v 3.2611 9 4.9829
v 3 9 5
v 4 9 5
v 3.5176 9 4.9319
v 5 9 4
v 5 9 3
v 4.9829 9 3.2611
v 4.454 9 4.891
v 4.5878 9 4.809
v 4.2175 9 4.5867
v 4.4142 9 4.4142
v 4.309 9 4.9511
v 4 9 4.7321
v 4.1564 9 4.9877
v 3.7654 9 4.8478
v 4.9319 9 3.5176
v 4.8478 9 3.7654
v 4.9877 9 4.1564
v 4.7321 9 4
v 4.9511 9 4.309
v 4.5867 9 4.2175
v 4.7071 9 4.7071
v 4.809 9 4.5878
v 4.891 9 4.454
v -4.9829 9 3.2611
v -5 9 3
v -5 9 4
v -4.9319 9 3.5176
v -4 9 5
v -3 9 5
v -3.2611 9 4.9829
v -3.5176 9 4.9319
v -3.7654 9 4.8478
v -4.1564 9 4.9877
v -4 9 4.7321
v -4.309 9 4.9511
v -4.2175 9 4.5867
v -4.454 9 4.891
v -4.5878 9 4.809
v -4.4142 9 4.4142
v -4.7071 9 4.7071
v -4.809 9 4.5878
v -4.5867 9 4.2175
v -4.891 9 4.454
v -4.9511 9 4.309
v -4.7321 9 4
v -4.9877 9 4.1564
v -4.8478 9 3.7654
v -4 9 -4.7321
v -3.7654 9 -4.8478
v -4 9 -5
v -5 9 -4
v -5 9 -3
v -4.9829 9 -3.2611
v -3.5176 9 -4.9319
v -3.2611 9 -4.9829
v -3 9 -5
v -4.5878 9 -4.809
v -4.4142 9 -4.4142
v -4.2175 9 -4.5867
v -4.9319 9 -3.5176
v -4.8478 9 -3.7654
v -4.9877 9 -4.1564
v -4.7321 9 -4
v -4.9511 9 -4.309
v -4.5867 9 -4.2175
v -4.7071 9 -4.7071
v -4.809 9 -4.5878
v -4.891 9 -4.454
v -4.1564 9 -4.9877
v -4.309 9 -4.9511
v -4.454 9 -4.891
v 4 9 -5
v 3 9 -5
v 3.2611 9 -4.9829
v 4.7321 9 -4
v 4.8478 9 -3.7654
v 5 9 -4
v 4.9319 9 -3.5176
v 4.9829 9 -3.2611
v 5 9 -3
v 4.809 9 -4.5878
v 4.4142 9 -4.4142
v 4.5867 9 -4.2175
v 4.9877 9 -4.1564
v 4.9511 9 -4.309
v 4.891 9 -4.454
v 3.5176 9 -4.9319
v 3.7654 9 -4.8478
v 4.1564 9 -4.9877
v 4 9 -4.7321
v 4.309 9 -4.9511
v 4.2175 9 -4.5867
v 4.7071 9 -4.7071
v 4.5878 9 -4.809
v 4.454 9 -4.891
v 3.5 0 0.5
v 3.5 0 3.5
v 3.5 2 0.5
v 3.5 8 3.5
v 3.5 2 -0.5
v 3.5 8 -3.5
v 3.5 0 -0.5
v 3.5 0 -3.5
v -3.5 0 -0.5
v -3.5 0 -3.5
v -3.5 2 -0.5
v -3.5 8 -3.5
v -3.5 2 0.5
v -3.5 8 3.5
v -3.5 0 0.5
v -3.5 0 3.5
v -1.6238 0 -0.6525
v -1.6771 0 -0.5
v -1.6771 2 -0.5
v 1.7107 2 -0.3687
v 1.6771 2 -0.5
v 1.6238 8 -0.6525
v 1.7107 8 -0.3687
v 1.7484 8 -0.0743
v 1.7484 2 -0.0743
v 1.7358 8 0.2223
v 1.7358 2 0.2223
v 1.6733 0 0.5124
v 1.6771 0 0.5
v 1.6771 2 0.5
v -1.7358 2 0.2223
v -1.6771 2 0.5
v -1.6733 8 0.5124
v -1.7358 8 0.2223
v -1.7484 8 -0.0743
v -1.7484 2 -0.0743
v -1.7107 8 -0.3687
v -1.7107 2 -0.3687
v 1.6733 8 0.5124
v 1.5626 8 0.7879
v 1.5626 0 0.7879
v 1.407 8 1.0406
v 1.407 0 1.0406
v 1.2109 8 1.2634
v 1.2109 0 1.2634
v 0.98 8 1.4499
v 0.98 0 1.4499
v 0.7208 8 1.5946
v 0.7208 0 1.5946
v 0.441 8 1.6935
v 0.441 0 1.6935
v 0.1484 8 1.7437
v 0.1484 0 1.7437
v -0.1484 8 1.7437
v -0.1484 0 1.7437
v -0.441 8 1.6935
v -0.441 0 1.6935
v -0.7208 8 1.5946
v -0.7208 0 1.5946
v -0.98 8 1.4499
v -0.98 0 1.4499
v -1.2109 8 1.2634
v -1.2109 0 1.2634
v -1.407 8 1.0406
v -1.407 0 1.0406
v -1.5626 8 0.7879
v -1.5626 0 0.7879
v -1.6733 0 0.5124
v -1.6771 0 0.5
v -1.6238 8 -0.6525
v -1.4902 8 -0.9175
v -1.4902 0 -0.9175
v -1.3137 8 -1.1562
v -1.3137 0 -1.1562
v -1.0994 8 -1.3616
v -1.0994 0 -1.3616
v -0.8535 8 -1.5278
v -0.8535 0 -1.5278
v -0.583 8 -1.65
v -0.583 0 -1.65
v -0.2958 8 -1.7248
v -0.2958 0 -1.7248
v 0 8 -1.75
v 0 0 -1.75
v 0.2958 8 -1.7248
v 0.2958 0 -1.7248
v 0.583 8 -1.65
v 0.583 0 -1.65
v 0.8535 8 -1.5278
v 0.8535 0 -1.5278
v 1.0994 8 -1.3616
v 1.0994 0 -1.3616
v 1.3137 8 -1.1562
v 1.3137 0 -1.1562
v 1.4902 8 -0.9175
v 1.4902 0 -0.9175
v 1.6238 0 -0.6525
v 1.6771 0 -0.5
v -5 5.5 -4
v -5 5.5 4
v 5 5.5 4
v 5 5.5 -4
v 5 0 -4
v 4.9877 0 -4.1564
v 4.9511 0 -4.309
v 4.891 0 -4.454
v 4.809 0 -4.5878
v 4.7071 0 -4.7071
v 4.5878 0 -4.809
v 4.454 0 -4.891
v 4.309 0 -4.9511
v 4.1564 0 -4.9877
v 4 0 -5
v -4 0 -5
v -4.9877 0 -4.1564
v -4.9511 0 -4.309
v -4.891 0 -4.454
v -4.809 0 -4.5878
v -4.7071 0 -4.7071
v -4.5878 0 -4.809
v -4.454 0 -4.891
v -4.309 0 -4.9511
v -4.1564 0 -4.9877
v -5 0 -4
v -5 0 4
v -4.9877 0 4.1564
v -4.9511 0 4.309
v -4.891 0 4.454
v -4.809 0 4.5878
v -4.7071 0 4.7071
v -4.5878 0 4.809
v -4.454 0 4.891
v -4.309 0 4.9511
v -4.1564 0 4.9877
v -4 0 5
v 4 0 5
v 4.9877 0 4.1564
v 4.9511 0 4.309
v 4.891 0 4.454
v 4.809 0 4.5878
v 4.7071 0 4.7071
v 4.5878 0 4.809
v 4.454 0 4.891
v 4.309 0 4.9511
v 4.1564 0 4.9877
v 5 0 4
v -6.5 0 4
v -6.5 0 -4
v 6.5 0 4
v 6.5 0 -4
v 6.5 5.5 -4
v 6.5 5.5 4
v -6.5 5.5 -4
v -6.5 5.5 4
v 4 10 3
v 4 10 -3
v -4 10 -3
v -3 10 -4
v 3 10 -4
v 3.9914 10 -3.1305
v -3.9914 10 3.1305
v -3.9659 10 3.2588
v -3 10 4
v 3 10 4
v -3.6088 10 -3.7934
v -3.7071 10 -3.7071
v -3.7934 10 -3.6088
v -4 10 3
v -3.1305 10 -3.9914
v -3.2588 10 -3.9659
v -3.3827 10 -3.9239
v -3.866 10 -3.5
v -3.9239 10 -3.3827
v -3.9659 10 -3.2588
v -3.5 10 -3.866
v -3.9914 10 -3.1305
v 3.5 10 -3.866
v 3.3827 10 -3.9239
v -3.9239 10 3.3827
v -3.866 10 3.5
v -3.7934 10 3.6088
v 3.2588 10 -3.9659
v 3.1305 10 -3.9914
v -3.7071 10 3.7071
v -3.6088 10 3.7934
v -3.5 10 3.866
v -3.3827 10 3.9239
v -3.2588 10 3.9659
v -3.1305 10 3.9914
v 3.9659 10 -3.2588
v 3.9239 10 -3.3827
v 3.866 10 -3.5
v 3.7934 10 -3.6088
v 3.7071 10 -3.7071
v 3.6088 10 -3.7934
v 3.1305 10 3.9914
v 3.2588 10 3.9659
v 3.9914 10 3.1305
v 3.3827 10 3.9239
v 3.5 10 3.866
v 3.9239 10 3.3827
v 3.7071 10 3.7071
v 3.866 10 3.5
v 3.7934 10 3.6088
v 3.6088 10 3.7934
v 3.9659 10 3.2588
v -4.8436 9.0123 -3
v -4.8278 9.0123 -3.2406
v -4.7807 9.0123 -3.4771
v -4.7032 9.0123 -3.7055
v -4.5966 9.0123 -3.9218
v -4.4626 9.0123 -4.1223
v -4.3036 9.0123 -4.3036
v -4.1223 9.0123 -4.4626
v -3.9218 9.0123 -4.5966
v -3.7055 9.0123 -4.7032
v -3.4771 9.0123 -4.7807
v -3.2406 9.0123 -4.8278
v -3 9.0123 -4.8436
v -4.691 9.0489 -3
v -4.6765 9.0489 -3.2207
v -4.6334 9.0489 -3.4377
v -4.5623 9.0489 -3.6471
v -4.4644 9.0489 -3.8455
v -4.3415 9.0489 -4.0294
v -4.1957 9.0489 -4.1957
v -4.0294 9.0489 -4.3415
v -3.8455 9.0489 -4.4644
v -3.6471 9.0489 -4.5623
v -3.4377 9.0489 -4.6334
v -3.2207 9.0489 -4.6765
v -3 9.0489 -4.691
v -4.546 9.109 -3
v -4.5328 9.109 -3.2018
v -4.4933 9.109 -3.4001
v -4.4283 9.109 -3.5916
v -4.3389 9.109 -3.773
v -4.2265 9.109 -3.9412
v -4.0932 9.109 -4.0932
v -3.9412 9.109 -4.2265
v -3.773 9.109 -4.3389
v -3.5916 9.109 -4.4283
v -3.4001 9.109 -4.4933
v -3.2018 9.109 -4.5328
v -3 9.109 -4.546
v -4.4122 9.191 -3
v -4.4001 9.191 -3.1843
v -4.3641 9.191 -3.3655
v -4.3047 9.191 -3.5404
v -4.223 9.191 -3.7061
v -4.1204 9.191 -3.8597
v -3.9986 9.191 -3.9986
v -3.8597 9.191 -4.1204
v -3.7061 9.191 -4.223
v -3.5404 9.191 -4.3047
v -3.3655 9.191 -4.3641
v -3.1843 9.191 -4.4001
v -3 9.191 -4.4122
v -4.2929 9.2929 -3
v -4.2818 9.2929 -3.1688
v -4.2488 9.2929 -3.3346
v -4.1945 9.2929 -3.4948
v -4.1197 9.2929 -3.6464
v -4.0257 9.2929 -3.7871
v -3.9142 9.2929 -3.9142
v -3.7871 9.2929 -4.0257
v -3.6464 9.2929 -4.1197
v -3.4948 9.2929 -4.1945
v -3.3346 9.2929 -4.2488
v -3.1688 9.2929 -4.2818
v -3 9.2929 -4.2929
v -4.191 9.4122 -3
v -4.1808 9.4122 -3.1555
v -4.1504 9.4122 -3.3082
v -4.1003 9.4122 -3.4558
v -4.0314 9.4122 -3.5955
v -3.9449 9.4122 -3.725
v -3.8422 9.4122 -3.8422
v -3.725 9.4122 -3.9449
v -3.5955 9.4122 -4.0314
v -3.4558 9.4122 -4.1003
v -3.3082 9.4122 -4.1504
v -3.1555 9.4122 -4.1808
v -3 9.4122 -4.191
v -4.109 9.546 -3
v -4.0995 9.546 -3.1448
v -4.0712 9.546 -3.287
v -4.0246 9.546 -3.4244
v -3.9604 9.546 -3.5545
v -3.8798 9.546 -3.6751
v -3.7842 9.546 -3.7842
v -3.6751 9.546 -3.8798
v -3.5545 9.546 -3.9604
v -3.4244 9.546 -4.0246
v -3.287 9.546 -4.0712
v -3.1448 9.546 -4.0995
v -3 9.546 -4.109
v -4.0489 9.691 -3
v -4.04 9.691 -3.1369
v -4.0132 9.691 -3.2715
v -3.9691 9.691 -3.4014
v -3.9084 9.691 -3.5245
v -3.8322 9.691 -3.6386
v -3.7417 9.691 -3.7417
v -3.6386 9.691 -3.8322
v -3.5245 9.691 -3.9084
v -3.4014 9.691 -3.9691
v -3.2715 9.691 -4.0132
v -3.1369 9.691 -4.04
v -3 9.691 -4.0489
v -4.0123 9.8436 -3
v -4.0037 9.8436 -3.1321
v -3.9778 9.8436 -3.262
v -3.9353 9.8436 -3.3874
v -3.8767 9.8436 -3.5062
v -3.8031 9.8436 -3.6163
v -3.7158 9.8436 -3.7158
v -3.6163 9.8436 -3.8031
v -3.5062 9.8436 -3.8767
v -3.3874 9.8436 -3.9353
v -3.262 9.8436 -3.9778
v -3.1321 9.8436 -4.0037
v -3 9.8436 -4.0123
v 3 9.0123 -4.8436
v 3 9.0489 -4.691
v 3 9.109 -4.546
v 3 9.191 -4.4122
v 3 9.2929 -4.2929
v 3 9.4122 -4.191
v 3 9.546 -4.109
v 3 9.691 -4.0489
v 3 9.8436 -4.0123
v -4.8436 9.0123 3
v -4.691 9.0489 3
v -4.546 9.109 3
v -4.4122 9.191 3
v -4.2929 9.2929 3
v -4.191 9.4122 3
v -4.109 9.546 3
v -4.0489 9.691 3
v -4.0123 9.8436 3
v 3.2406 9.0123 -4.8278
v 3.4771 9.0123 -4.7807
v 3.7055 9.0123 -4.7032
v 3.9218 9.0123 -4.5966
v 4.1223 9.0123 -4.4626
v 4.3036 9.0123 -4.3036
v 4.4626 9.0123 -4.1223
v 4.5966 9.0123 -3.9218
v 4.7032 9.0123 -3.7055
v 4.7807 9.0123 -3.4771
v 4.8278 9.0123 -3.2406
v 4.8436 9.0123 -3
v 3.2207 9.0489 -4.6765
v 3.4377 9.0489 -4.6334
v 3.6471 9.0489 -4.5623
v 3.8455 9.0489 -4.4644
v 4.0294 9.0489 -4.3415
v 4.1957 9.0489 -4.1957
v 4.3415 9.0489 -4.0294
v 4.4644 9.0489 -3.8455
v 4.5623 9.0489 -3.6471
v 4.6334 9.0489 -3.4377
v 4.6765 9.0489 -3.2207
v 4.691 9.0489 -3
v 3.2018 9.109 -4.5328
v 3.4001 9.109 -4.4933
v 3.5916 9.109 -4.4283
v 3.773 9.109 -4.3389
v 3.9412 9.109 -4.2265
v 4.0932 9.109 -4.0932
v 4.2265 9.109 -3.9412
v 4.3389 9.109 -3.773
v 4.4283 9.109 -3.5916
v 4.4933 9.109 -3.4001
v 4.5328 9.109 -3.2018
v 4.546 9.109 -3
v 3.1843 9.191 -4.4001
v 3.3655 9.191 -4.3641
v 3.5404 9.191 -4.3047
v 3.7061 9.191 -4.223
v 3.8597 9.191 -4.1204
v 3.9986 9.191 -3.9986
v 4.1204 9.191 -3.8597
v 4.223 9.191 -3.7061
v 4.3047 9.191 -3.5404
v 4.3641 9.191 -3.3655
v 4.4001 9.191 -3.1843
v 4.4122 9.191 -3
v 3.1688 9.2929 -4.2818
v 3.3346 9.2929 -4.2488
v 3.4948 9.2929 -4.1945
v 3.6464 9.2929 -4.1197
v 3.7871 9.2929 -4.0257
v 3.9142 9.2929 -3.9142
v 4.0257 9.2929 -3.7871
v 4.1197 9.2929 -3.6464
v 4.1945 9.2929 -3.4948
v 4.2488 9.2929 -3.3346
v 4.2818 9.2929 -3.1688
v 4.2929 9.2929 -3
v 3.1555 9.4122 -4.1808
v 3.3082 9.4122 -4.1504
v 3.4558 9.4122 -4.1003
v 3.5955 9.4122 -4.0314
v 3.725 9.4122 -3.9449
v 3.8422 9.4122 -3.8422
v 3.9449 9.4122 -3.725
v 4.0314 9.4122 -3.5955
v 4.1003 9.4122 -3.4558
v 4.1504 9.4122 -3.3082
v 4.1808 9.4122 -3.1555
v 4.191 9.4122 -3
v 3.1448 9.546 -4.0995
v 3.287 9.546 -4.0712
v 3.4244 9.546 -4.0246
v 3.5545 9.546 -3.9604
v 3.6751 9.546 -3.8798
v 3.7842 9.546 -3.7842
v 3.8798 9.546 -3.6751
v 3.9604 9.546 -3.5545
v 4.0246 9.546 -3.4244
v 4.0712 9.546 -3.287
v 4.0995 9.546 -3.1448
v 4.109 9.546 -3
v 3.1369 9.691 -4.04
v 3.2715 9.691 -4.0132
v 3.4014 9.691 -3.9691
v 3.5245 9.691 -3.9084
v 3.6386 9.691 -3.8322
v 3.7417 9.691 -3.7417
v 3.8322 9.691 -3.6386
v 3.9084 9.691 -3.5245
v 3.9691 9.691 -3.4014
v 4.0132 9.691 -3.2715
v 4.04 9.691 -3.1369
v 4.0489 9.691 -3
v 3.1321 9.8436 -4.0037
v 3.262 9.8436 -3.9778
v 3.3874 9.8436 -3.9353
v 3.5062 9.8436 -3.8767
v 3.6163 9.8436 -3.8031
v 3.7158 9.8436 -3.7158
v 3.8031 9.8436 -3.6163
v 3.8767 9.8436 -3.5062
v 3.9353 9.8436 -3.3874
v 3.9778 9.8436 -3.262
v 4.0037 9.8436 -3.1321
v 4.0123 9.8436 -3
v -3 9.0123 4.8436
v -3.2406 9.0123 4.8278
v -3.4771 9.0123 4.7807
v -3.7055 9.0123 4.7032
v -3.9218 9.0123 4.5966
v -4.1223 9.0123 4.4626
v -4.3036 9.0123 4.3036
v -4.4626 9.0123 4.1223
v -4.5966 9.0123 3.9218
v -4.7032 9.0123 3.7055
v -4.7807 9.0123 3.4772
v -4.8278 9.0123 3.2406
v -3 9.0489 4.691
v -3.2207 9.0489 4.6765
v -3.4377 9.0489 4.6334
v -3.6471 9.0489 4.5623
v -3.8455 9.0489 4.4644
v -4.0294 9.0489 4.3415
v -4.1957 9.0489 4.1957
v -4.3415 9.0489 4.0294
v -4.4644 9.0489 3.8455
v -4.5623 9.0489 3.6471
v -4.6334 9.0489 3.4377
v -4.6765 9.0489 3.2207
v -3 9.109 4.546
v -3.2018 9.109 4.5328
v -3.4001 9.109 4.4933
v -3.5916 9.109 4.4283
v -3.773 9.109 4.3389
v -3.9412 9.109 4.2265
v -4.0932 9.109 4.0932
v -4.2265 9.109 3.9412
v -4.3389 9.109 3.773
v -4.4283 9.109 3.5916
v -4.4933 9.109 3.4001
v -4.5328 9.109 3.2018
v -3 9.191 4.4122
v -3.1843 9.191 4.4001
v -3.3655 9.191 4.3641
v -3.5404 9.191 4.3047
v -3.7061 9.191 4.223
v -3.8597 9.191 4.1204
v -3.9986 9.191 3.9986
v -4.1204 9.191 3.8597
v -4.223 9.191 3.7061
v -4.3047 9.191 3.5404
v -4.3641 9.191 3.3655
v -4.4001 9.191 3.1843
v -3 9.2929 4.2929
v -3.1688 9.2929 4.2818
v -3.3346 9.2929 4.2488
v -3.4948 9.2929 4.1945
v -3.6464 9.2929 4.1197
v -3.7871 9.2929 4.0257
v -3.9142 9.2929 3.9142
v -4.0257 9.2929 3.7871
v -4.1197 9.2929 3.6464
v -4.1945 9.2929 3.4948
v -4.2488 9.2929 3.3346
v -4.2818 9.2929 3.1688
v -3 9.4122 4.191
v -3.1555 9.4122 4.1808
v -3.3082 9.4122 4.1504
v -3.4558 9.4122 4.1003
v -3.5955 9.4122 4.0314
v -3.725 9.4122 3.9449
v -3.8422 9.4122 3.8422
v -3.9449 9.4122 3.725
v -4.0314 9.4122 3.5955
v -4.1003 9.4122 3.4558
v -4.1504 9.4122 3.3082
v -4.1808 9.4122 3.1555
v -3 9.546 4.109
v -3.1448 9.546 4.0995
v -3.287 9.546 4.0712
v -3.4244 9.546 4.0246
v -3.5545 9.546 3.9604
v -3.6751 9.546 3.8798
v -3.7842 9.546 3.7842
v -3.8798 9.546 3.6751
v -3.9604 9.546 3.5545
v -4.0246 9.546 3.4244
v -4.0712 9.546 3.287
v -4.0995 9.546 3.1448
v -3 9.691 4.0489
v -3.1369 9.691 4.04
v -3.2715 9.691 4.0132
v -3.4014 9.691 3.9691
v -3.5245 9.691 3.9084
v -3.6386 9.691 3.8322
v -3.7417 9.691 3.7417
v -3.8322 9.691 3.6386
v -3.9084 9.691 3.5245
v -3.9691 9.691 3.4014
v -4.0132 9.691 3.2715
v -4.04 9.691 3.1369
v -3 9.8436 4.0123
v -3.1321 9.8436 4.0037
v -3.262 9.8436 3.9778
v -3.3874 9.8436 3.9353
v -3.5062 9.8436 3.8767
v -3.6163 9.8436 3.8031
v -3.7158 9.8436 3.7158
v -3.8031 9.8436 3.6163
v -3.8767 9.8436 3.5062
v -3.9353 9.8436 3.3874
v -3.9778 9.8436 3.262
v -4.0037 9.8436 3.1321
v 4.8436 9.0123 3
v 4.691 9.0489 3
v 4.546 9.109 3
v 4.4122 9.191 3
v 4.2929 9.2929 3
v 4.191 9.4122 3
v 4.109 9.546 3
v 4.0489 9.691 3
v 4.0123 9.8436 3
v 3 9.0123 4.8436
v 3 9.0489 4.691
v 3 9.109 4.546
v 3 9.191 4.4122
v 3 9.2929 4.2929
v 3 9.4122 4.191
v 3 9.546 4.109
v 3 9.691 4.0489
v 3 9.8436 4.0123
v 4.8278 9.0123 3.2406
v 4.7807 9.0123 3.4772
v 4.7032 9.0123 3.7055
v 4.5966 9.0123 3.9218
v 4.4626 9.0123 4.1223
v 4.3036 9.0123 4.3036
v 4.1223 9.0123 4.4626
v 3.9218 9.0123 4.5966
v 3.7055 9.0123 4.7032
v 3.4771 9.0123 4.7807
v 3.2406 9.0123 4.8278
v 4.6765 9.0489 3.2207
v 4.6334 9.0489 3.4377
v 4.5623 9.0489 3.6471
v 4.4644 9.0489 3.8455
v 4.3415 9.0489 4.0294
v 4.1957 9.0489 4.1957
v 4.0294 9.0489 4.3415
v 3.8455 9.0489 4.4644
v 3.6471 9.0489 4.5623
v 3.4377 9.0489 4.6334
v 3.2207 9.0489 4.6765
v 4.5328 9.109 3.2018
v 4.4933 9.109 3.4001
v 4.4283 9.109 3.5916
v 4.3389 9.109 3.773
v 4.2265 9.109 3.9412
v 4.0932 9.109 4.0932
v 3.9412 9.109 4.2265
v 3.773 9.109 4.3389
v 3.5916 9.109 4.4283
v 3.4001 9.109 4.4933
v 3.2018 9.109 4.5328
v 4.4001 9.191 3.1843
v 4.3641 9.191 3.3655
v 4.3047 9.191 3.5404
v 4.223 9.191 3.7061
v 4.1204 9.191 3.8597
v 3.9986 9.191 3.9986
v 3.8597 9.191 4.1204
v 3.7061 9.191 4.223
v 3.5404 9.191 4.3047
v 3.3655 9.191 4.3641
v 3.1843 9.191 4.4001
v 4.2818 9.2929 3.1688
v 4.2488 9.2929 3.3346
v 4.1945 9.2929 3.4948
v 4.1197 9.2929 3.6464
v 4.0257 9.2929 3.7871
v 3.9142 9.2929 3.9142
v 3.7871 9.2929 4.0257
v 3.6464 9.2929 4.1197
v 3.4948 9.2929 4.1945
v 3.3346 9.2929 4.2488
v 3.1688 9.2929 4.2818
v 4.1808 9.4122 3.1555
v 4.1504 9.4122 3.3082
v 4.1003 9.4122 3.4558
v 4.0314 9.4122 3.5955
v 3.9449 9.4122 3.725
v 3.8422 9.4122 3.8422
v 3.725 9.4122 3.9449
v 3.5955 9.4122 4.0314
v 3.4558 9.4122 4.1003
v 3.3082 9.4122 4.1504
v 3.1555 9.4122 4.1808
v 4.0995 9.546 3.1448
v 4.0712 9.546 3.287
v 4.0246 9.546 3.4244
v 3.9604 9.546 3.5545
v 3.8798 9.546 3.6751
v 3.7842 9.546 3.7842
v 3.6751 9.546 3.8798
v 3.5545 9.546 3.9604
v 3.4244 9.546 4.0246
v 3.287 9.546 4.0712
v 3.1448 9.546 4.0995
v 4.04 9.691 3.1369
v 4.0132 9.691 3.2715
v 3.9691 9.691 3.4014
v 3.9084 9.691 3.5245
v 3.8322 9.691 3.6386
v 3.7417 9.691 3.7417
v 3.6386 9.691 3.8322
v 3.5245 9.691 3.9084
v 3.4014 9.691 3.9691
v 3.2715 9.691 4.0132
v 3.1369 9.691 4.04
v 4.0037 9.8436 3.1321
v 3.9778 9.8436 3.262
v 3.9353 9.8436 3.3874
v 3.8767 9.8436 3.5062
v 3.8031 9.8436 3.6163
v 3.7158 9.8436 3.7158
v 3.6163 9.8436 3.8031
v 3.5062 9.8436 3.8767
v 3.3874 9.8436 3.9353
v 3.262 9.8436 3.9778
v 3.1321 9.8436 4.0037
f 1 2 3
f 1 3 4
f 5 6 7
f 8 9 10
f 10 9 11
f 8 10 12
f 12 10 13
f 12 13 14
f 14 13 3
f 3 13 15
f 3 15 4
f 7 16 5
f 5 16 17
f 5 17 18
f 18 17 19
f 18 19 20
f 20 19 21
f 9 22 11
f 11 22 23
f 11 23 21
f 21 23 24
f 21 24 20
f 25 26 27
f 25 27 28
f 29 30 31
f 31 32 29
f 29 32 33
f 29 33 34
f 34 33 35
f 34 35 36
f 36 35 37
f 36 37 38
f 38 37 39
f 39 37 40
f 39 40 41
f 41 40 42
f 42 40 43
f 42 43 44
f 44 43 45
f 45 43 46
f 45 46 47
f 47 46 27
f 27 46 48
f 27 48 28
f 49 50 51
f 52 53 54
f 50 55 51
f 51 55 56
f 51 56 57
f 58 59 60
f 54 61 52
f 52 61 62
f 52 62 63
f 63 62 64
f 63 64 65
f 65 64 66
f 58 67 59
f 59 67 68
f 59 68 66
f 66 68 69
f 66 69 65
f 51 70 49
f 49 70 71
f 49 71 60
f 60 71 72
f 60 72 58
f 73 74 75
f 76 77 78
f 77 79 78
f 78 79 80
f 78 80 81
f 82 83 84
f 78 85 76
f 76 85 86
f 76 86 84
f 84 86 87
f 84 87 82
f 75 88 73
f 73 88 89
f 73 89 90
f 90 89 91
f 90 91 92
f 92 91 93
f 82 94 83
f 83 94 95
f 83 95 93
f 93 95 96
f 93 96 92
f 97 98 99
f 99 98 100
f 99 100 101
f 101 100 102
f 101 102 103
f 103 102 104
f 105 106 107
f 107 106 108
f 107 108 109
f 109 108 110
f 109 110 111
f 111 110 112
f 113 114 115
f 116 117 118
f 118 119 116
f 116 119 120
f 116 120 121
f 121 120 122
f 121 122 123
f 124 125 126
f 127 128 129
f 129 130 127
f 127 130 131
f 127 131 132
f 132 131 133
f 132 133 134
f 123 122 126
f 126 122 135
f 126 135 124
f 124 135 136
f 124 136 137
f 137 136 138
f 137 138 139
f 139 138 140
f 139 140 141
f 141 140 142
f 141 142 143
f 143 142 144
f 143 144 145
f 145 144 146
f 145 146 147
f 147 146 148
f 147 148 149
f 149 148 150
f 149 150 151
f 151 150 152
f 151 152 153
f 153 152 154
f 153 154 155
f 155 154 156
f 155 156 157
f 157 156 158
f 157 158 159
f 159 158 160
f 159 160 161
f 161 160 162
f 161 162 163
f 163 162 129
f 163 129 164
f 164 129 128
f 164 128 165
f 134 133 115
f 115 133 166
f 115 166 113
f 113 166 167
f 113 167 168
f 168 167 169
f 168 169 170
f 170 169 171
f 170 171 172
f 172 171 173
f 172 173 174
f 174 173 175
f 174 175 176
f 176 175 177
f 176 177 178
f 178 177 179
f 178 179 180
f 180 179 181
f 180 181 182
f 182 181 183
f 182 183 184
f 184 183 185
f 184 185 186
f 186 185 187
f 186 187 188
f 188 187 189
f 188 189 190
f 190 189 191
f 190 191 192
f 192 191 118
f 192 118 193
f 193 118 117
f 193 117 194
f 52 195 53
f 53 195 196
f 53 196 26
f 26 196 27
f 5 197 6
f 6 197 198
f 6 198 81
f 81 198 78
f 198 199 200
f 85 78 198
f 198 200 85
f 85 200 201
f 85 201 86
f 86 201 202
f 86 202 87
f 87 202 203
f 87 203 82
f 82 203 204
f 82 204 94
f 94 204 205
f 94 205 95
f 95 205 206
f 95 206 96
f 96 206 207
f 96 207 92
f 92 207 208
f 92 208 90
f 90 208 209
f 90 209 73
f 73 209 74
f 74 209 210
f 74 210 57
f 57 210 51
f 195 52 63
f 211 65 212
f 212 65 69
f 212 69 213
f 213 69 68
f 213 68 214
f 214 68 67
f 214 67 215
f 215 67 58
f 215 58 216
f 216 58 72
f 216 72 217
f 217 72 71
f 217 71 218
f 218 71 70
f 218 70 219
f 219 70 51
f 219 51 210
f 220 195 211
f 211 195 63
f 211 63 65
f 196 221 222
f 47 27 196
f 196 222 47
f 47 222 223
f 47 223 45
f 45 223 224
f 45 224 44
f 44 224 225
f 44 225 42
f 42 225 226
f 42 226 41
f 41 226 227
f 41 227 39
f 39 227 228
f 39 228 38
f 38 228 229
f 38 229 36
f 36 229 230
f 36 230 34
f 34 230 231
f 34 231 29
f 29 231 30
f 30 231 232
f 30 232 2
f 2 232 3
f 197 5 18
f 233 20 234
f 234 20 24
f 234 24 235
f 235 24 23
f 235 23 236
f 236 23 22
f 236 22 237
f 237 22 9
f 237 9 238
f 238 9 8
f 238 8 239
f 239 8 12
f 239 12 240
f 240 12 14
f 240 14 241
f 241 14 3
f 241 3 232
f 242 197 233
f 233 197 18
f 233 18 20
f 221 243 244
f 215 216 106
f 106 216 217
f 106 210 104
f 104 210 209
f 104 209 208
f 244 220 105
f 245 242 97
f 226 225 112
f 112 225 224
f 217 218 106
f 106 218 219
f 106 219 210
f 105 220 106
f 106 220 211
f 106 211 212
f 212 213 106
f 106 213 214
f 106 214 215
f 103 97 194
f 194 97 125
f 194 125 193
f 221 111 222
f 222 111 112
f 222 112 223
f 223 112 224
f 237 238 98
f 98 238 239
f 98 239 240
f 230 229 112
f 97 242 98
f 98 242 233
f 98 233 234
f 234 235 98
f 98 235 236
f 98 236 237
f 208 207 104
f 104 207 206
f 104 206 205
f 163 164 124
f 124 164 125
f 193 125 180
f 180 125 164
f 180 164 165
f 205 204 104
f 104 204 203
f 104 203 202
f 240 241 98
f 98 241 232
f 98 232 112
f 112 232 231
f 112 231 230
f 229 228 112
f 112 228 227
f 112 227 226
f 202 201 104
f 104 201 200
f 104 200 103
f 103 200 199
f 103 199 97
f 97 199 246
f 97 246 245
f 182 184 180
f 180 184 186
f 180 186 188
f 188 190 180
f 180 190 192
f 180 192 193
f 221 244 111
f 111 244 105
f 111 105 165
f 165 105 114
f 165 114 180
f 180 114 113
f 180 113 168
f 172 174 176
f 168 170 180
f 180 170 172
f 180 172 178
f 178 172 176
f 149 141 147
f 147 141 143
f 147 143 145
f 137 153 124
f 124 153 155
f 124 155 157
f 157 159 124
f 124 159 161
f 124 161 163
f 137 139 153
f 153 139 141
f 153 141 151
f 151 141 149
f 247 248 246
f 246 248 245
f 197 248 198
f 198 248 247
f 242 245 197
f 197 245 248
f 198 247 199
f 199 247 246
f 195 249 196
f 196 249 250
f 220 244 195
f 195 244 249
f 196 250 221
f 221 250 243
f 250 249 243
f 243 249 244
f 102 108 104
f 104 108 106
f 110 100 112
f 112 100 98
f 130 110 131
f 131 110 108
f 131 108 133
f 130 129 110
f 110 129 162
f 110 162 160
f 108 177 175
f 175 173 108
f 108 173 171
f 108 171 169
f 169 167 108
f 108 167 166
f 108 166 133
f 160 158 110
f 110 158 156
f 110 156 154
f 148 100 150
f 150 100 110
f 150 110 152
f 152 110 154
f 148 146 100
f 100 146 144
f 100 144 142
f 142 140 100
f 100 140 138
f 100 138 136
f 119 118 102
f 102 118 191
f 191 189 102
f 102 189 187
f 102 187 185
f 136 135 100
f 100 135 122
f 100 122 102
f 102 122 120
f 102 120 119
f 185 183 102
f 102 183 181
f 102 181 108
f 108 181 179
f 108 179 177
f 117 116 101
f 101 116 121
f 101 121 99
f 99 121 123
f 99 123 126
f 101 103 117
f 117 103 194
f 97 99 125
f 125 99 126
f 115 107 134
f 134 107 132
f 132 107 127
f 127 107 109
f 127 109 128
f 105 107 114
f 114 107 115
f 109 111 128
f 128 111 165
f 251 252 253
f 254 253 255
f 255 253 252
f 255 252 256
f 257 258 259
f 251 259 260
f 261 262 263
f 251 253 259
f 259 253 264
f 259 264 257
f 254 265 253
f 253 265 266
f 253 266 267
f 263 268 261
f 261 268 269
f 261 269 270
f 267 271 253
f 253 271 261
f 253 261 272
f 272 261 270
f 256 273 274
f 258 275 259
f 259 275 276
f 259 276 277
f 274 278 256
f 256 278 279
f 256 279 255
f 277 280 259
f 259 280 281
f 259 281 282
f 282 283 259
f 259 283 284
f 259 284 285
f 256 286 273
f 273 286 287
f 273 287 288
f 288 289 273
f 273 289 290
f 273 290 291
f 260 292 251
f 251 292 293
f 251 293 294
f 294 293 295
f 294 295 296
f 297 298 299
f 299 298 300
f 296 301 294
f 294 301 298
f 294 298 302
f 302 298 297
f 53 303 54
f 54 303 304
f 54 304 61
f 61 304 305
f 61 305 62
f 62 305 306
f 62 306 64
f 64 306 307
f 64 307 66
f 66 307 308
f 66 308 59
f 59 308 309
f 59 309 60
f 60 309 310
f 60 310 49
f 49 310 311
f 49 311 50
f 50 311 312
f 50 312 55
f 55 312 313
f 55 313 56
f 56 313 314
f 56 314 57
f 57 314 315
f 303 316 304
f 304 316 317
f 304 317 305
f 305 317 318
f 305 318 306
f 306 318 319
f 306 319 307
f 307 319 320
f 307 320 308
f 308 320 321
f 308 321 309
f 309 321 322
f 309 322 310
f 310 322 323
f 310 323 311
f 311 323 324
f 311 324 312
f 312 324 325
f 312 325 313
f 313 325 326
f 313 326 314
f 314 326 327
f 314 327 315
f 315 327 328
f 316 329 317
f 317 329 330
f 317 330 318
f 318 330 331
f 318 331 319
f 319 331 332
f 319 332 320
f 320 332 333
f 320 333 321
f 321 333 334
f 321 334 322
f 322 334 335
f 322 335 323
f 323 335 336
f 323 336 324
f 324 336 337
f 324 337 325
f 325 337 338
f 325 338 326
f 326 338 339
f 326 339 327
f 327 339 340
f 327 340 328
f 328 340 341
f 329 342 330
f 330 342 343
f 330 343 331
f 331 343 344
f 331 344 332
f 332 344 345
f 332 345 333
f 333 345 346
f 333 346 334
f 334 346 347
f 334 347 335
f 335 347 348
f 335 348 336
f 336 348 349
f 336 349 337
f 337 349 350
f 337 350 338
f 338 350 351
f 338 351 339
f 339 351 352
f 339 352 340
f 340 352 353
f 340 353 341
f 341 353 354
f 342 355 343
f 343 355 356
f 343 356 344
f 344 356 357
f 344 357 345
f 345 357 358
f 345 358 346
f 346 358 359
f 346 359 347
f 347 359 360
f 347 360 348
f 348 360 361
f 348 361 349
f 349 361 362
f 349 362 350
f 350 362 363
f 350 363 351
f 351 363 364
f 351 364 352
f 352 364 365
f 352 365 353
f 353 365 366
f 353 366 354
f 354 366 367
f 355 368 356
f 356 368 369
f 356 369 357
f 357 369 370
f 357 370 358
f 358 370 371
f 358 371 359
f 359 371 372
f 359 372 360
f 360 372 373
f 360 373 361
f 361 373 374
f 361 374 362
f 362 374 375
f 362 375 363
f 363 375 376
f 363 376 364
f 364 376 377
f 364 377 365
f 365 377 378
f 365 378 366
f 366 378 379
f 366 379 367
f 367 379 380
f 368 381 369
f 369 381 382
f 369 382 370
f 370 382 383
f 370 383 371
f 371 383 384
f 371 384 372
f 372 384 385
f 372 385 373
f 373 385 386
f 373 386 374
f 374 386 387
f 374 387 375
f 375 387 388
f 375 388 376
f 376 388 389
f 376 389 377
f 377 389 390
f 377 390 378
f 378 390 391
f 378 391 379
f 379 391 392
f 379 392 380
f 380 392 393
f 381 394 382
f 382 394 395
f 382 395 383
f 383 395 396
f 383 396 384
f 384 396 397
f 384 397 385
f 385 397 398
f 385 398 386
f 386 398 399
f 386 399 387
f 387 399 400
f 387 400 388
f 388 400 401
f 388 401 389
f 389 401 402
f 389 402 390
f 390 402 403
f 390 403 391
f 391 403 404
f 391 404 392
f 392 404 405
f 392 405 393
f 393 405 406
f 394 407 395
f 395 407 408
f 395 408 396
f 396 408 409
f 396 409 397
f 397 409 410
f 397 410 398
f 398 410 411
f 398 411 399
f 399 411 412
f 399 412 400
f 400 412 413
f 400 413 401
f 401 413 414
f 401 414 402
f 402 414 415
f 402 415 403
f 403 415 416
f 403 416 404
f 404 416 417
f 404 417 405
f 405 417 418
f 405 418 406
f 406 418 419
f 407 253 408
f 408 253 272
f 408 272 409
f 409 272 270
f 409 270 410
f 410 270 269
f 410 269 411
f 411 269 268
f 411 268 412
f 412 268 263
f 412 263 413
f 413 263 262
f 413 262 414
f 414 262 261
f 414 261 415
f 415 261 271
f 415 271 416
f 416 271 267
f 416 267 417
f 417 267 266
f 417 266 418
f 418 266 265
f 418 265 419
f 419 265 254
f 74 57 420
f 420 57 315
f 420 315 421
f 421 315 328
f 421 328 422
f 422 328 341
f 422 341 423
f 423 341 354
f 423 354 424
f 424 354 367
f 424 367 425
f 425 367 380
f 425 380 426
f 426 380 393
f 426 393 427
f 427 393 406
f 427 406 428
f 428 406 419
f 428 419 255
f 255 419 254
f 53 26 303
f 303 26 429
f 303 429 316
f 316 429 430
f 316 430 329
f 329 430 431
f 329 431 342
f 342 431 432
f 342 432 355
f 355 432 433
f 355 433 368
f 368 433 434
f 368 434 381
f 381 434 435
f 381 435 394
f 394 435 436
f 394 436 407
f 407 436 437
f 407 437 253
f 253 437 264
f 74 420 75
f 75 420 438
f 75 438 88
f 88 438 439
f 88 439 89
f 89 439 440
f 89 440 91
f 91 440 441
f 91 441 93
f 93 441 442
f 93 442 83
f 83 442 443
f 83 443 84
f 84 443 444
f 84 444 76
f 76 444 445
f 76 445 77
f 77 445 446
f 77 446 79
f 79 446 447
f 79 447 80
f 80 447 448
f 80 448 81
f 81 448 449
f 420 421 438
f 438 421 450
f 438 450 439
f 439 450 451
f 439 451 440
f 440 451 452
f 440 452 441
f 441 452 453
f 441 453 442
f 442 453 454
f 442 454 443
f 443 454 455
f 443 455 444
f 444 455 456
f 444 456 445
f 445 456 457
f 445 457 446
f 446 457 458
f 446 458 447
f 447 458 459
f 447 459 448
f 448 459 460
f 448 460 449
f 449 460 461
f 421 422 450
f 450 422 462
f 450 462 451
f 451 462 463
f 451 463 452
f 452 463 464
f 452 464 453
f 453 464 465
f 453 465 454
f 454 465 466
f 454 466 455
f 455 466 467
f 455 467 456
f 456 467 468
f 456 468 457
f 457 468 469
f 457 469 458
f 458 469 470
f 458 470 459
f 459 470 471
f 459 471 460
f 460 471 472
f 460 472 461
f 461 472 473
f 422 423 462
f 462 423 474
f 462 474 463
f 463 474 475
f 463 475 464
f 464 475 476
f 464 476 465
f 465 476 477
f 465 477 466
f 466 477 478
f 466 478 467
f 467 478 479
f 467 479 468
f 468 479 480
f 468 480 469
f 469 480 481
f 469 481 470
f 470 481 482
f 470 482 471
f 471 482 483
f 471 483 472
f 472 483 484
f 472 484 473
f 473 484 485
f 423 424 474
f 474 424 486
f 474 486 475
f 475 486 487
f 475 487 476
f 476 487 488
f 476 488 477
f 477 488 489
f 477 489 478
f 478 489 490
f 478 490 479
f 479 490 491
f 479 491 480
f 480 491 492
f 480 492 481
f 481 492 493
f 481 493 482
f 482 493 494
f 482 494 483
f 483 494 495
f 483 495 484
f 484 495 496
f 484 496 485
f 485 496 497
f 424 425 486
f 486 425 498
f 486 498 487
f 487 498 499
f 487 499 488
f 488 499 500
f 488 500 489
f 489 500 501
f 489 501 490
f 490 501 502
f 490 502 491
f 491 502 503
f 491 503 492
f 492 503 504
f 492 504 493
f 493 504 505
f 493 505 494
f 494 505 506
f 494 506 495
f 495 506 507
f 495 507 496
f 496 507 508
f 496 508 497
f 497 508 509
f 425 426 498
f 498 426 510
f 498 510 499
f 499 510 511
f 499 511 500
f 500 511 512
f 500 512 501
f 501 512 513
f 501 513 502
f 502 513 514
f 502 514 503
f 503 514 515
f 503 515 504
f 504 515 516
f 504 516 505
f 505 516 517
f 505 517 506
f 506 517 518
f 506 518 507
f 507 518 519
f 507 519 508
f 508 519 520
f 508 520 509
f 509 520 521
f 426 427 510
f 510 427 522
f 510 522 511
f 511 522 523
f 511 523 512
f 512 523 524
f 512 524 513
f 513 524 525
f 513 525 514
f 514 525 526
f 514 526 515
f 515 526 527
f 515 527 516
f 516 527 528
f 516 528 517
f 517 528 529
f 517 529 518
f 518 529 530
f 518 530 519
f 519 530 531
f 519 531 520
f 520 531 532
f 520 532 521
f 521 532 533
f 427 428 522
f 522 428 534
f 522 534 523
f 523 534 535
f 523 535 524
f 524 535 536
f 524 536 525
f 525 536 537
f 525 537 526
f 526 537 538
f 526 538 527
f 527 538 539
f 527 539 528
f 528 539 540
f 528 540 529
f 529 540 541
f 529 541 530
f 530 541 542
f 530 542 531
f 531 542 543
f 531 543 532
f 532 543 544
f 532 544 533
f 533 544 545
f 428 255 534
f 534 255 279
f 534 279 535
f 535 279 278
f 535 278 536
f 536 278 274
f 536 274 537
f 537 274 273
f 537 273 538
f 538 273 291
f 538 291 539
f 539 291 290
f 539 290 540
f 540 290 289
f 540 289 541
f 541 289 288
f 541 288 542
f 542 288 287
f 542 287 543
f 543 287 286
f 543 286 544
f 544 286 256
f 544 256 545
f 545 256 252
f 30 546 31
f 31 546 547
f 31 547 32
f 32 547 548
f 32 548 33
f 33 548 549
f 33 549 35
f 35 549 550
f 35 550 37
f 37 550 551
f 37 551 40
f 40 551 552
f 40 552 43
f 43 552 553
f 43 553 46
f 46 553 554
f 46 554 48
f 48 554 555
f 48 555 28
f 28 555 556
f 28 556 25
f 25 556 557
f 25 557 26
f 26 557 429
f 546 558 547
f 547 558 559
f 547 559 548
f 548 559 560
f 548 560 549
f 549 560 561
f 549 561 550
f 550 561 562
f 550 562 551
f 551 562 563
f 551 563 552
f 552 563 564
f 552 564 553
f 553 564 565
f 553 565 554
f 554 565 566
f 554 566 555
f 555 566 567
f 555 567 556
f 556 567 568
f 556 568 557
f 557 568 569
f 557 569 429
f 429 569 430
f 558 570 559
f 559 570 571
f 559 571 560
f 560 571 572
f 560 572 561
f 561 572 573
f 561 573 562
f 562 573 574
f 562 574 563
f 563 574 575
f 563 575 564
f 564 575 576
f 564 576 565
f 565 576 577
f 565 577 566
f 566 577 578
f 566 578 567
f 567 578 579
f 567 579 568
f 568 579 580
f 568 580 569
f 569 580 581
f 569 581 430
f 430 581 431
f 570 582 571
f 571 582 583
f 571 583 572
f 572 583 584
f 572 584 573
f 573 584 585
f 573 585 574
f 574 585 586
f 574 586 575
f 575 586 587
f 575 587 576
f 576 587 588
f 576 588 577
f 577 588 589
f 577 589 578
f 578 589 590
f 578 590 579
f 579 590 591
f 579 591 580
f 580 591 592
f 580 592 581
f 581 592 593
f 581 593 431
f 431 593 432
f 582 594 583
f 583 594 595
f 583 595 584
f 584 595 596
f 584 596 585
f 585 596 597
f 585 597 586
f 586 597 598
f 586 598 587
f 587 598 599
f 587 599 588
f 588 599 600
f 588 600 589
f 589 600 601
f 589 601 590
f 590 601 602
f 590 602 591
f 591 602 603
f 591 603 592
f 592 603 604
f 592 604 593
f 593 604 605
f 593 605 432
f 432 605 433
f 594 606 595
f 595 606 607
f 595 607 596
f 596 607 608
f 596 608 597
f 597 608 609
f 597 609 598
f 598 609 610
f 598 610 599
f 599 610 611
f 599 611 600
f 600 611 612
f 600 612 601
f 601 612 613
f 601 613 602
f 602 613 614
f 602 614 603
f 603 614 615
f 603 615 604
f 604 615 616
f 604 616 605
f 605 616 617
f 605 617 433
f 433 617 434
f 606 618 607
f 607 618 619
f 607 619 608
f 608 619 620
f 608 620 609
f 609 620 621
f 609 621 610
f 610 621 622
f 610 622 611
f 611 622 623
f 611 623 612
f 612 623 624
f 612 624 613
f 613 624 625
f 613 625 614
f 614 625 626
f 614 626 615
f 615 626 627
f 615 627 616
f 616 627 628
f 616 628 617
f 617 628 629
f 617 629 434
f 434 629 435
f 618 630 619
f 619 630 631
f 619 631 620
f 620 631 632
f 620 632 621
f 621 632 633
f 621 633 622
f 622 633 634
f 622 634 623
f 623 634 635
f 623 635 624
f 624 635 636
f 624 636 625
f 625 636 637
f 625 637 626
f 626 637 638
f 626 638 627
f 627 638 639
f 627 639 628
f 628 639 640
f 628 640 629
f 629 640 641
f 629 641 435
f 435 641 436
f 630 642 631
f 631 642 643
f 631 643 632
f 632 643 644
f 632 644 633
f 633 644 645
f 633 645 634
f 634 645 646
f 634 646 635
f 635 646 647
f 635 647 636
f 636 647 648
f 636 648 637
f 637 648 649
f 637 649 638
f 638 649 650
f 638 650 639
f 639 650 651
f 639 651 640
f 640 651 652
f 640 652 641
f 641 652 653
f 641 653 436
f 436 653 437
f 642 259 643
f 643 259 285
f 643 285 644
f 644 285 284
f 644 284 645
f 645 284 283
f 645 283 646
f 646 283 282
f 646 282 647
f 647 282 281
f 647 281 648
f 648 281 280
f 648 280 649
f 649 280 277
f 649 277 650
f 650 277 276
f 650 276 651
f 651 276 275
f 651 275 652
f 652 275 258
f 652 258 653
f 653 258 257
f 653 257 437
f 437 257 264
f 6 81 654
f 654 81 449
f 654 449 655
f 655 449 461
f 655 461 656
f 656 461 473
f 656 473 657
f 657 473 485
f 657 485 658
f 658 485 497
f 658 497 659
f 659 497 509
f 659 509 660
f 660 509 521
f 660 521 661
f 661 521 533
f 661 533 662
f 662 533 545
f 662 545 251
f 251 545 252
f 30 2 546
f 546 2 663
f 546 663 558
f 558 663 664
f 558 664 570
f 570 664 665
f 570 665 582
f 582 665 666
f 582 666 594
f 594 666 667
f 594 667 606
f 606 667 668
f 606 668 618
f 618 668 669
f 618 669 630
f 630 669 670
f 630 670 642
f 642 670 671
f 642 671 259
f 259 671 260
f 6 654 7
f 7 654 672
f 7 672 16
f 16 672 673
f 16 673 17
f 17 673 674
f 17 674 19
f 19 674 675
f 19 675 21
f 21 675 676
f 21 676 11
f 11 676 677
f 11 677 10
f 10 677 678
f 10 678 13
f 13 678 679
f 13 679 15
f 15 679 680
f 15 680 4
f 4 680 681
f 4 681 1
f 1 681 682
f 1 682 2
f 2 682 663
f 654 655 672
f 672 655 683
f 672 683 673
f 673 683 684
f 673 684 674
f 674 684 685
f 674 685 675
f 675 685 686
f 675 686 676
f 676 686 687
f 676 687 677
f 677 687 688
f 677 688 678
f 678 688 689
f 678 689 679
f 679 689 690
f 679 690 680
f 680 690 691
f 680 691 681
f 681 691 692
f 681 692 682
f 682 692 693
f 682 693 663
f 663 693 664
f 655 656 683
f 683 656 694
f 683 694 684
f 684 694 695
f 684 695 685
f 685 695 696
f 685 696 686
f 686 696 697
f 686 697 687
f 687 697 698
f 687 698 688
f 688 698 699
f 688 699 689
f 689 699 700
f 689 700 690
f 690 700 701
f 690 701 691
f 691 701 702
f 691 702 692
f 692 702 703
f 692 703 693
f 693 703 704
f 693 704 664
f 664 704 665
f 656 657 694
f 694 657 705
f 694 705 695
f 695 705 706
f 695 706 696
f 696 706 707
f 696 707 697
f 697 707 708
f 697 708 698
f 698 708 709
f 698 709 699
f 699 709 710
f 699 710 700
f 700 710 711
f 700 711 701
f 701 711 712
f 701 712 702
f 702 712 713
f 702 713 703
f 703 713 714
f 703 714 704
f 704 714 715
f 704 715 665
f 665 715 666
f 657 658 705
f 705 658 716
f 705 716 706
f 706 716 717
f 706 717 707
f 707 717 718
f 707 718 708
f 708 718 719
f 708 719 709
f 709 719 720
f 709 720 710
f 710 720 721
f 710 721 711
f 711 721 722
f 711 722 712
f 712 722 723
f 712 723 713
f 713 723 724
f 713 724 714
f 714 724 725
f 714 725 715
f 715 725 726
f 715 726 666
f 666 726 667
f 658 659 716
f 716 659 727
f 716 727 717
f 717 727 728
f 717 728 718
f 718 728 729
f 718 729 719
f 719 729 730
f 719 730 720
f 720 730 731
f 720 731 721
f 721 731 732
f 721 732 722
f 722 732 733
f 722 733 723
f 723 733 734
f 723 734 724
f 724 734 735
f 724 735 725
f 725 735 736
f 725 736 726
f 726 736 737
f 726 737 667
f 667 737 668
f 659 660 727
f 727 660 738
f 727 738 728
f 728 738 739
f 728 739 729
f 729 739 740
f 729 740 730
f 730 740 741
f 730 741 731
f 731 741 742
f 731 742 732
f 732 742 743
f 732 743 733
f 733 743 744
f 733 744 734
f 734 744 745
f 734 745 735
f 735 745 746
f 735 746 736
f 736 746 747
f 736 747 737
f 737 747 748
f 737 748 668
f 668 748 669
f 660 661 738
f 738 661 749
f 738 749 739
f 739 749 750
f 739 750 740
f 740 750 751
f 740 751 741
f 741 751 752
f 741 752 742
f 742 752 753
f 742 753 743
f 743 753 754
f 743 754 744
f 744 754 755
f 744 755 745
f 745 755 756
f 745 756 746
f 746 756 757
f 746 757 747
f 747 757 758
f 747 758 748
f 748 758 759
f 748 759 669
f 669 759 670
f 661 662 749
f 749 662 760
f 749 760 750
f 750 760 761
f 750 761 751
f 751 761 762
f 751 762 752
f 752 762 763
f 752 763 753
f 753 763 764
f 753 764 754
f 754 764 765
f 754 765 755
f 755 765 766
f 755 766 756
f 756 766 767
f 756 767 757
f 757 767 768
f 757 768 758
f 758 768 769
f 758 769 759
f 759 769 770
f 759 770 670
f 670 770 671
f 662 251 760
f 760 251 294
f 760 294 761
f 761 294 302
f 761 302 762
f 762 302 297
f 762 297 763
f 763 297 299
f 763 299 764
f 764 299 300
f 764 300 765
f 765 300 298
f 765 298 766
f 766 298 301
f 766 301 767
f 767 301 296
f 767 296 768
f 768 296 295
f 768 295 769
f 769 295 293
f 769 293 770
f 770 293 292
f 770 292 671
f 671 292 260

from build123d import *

# Parameters (mm, degrees)
BOSS_EXTRUDE1_DEPTH = 10
SKETCH2_W           = 13
SKETCH2_H           = 8
BOSS_EXTRUDE2_DEPTH = 5.5
SKETCH3_W           = 7
SKETCH3_H           = 7
SKETCH3_R           = 1.75
CUT_EXTRUDE1_DEPTH  = 8
SKETCH4_W           = 1
SKETCH4_H           = 2
BOSS_EXTRUDE3_DEPTH = 7
SKETCH5_W           = 10
SKETCH5_H           = 10
SKETCH5_W_2         = 8
SKETCH5_H_2         = 8
CUT_EXTRUDE2_DEPTH  = 1
FILLET1_R           = 1


with BuildPart() as part:
    # Sketch1 → Boss-Extrude1 (new body)
    with BuildSketch(Plane(origin=(0, 0, 0), x_dir=(1, 0, 0), z_dir=(0, 1, 0))):
        with BuildLine():
            Line((-4, -5), (4, -5))
            ThreePointArc((4, -5), (4.707106781, -4.707106781), (5, -4))
            Line((5, -4), (5, 4))
            ThreePointArc((5, 4), (4.707106781, 4.707106781), (4, 5))
            Line((4, 5), (-4, 5))
            ThreePointArc((-4, 5), (-4.707106781, 4.707106781), (-5, 4))
            Line((-5, 4), (-5, -4))
            ThreePointArc((-5, -4), (-4.707106781, -4.707106781), (-4, -5))
        make_face()
    extrude(amount=BOSS_EXTRUDE1_DEPTH)

    # Sketch2 → Boss-Extrude2 (add)
    with BuildSketch(Plane(origin=(0, 0, 0), x_dir=(1, 0, 0), z_dir=(0, 1, 0))):
        Rectangle(SKETCH2_W, SKETCH2_H)
    extrude(amount=BOSS_EXTRUDE2_DEPTH)

    # Sketch3 → Cut-Extrude1 (cut)
    with BuildSketch(Plane.XZ):
        Rectangle(SKETCH3_W, SKETCH3_H)
        with Locations(Location((0, 0, 0), (0, 0, 270))):
            Circle(SKETCH3_R, mode=Mode.SUBTRACT)
    extrude(amount=-CUT_EXTRUDE1_DEPTH, mode=Mode.SUBTRACT)

    # Sketch4 → Boss-Extrude3 (add)
    with BuildSketch(Plane(origin=(-3.5, 0, 0), x_dir=(0, 0, -1), z_dir=(1, 0, 0))):
        with Locations((0, 1)):
            Rectangle(SKETCH4_W, SKETCH4_H)
    extrude(amount=BOSS_EXTRUDE3_DEPTH)

    # Sketch5 → Cut-Extrude2 (cut)
    with BuildSketch(Plane(origin=(0, 10, 0), x_dir=(1, 0, 0), z_dir=(0, 1, 0))):
        Rectangle(SKETCH5_W, SKETCH5_H)
        Rectangle(SKETCH5_W_2, SKETCH5_H_2, mode=Mode.SUBTRACT)
    extrude(amount=-CUT_EXTRUDE2_DEPTH, mode=Mode.SUBTRACT)

    # Fillet1
    fillet1_edges = [part.edges().sort_by_distance(p)[0] for p in [
        (-4, 9, 0),
        (0, 9, 4),
        (4, 9, 0),
        (0, 9, -4),
        (-4, 9.5, -4),
        (4, 9.5, -4),
        (4, 9.5, 4),
        (-4, 9.5, 4),
    ]]
    fillet(fillet1_edges, radius=FILLET1_R - 0.0001)  # a hair under: the kernel refuses the full size


solid = part.part
